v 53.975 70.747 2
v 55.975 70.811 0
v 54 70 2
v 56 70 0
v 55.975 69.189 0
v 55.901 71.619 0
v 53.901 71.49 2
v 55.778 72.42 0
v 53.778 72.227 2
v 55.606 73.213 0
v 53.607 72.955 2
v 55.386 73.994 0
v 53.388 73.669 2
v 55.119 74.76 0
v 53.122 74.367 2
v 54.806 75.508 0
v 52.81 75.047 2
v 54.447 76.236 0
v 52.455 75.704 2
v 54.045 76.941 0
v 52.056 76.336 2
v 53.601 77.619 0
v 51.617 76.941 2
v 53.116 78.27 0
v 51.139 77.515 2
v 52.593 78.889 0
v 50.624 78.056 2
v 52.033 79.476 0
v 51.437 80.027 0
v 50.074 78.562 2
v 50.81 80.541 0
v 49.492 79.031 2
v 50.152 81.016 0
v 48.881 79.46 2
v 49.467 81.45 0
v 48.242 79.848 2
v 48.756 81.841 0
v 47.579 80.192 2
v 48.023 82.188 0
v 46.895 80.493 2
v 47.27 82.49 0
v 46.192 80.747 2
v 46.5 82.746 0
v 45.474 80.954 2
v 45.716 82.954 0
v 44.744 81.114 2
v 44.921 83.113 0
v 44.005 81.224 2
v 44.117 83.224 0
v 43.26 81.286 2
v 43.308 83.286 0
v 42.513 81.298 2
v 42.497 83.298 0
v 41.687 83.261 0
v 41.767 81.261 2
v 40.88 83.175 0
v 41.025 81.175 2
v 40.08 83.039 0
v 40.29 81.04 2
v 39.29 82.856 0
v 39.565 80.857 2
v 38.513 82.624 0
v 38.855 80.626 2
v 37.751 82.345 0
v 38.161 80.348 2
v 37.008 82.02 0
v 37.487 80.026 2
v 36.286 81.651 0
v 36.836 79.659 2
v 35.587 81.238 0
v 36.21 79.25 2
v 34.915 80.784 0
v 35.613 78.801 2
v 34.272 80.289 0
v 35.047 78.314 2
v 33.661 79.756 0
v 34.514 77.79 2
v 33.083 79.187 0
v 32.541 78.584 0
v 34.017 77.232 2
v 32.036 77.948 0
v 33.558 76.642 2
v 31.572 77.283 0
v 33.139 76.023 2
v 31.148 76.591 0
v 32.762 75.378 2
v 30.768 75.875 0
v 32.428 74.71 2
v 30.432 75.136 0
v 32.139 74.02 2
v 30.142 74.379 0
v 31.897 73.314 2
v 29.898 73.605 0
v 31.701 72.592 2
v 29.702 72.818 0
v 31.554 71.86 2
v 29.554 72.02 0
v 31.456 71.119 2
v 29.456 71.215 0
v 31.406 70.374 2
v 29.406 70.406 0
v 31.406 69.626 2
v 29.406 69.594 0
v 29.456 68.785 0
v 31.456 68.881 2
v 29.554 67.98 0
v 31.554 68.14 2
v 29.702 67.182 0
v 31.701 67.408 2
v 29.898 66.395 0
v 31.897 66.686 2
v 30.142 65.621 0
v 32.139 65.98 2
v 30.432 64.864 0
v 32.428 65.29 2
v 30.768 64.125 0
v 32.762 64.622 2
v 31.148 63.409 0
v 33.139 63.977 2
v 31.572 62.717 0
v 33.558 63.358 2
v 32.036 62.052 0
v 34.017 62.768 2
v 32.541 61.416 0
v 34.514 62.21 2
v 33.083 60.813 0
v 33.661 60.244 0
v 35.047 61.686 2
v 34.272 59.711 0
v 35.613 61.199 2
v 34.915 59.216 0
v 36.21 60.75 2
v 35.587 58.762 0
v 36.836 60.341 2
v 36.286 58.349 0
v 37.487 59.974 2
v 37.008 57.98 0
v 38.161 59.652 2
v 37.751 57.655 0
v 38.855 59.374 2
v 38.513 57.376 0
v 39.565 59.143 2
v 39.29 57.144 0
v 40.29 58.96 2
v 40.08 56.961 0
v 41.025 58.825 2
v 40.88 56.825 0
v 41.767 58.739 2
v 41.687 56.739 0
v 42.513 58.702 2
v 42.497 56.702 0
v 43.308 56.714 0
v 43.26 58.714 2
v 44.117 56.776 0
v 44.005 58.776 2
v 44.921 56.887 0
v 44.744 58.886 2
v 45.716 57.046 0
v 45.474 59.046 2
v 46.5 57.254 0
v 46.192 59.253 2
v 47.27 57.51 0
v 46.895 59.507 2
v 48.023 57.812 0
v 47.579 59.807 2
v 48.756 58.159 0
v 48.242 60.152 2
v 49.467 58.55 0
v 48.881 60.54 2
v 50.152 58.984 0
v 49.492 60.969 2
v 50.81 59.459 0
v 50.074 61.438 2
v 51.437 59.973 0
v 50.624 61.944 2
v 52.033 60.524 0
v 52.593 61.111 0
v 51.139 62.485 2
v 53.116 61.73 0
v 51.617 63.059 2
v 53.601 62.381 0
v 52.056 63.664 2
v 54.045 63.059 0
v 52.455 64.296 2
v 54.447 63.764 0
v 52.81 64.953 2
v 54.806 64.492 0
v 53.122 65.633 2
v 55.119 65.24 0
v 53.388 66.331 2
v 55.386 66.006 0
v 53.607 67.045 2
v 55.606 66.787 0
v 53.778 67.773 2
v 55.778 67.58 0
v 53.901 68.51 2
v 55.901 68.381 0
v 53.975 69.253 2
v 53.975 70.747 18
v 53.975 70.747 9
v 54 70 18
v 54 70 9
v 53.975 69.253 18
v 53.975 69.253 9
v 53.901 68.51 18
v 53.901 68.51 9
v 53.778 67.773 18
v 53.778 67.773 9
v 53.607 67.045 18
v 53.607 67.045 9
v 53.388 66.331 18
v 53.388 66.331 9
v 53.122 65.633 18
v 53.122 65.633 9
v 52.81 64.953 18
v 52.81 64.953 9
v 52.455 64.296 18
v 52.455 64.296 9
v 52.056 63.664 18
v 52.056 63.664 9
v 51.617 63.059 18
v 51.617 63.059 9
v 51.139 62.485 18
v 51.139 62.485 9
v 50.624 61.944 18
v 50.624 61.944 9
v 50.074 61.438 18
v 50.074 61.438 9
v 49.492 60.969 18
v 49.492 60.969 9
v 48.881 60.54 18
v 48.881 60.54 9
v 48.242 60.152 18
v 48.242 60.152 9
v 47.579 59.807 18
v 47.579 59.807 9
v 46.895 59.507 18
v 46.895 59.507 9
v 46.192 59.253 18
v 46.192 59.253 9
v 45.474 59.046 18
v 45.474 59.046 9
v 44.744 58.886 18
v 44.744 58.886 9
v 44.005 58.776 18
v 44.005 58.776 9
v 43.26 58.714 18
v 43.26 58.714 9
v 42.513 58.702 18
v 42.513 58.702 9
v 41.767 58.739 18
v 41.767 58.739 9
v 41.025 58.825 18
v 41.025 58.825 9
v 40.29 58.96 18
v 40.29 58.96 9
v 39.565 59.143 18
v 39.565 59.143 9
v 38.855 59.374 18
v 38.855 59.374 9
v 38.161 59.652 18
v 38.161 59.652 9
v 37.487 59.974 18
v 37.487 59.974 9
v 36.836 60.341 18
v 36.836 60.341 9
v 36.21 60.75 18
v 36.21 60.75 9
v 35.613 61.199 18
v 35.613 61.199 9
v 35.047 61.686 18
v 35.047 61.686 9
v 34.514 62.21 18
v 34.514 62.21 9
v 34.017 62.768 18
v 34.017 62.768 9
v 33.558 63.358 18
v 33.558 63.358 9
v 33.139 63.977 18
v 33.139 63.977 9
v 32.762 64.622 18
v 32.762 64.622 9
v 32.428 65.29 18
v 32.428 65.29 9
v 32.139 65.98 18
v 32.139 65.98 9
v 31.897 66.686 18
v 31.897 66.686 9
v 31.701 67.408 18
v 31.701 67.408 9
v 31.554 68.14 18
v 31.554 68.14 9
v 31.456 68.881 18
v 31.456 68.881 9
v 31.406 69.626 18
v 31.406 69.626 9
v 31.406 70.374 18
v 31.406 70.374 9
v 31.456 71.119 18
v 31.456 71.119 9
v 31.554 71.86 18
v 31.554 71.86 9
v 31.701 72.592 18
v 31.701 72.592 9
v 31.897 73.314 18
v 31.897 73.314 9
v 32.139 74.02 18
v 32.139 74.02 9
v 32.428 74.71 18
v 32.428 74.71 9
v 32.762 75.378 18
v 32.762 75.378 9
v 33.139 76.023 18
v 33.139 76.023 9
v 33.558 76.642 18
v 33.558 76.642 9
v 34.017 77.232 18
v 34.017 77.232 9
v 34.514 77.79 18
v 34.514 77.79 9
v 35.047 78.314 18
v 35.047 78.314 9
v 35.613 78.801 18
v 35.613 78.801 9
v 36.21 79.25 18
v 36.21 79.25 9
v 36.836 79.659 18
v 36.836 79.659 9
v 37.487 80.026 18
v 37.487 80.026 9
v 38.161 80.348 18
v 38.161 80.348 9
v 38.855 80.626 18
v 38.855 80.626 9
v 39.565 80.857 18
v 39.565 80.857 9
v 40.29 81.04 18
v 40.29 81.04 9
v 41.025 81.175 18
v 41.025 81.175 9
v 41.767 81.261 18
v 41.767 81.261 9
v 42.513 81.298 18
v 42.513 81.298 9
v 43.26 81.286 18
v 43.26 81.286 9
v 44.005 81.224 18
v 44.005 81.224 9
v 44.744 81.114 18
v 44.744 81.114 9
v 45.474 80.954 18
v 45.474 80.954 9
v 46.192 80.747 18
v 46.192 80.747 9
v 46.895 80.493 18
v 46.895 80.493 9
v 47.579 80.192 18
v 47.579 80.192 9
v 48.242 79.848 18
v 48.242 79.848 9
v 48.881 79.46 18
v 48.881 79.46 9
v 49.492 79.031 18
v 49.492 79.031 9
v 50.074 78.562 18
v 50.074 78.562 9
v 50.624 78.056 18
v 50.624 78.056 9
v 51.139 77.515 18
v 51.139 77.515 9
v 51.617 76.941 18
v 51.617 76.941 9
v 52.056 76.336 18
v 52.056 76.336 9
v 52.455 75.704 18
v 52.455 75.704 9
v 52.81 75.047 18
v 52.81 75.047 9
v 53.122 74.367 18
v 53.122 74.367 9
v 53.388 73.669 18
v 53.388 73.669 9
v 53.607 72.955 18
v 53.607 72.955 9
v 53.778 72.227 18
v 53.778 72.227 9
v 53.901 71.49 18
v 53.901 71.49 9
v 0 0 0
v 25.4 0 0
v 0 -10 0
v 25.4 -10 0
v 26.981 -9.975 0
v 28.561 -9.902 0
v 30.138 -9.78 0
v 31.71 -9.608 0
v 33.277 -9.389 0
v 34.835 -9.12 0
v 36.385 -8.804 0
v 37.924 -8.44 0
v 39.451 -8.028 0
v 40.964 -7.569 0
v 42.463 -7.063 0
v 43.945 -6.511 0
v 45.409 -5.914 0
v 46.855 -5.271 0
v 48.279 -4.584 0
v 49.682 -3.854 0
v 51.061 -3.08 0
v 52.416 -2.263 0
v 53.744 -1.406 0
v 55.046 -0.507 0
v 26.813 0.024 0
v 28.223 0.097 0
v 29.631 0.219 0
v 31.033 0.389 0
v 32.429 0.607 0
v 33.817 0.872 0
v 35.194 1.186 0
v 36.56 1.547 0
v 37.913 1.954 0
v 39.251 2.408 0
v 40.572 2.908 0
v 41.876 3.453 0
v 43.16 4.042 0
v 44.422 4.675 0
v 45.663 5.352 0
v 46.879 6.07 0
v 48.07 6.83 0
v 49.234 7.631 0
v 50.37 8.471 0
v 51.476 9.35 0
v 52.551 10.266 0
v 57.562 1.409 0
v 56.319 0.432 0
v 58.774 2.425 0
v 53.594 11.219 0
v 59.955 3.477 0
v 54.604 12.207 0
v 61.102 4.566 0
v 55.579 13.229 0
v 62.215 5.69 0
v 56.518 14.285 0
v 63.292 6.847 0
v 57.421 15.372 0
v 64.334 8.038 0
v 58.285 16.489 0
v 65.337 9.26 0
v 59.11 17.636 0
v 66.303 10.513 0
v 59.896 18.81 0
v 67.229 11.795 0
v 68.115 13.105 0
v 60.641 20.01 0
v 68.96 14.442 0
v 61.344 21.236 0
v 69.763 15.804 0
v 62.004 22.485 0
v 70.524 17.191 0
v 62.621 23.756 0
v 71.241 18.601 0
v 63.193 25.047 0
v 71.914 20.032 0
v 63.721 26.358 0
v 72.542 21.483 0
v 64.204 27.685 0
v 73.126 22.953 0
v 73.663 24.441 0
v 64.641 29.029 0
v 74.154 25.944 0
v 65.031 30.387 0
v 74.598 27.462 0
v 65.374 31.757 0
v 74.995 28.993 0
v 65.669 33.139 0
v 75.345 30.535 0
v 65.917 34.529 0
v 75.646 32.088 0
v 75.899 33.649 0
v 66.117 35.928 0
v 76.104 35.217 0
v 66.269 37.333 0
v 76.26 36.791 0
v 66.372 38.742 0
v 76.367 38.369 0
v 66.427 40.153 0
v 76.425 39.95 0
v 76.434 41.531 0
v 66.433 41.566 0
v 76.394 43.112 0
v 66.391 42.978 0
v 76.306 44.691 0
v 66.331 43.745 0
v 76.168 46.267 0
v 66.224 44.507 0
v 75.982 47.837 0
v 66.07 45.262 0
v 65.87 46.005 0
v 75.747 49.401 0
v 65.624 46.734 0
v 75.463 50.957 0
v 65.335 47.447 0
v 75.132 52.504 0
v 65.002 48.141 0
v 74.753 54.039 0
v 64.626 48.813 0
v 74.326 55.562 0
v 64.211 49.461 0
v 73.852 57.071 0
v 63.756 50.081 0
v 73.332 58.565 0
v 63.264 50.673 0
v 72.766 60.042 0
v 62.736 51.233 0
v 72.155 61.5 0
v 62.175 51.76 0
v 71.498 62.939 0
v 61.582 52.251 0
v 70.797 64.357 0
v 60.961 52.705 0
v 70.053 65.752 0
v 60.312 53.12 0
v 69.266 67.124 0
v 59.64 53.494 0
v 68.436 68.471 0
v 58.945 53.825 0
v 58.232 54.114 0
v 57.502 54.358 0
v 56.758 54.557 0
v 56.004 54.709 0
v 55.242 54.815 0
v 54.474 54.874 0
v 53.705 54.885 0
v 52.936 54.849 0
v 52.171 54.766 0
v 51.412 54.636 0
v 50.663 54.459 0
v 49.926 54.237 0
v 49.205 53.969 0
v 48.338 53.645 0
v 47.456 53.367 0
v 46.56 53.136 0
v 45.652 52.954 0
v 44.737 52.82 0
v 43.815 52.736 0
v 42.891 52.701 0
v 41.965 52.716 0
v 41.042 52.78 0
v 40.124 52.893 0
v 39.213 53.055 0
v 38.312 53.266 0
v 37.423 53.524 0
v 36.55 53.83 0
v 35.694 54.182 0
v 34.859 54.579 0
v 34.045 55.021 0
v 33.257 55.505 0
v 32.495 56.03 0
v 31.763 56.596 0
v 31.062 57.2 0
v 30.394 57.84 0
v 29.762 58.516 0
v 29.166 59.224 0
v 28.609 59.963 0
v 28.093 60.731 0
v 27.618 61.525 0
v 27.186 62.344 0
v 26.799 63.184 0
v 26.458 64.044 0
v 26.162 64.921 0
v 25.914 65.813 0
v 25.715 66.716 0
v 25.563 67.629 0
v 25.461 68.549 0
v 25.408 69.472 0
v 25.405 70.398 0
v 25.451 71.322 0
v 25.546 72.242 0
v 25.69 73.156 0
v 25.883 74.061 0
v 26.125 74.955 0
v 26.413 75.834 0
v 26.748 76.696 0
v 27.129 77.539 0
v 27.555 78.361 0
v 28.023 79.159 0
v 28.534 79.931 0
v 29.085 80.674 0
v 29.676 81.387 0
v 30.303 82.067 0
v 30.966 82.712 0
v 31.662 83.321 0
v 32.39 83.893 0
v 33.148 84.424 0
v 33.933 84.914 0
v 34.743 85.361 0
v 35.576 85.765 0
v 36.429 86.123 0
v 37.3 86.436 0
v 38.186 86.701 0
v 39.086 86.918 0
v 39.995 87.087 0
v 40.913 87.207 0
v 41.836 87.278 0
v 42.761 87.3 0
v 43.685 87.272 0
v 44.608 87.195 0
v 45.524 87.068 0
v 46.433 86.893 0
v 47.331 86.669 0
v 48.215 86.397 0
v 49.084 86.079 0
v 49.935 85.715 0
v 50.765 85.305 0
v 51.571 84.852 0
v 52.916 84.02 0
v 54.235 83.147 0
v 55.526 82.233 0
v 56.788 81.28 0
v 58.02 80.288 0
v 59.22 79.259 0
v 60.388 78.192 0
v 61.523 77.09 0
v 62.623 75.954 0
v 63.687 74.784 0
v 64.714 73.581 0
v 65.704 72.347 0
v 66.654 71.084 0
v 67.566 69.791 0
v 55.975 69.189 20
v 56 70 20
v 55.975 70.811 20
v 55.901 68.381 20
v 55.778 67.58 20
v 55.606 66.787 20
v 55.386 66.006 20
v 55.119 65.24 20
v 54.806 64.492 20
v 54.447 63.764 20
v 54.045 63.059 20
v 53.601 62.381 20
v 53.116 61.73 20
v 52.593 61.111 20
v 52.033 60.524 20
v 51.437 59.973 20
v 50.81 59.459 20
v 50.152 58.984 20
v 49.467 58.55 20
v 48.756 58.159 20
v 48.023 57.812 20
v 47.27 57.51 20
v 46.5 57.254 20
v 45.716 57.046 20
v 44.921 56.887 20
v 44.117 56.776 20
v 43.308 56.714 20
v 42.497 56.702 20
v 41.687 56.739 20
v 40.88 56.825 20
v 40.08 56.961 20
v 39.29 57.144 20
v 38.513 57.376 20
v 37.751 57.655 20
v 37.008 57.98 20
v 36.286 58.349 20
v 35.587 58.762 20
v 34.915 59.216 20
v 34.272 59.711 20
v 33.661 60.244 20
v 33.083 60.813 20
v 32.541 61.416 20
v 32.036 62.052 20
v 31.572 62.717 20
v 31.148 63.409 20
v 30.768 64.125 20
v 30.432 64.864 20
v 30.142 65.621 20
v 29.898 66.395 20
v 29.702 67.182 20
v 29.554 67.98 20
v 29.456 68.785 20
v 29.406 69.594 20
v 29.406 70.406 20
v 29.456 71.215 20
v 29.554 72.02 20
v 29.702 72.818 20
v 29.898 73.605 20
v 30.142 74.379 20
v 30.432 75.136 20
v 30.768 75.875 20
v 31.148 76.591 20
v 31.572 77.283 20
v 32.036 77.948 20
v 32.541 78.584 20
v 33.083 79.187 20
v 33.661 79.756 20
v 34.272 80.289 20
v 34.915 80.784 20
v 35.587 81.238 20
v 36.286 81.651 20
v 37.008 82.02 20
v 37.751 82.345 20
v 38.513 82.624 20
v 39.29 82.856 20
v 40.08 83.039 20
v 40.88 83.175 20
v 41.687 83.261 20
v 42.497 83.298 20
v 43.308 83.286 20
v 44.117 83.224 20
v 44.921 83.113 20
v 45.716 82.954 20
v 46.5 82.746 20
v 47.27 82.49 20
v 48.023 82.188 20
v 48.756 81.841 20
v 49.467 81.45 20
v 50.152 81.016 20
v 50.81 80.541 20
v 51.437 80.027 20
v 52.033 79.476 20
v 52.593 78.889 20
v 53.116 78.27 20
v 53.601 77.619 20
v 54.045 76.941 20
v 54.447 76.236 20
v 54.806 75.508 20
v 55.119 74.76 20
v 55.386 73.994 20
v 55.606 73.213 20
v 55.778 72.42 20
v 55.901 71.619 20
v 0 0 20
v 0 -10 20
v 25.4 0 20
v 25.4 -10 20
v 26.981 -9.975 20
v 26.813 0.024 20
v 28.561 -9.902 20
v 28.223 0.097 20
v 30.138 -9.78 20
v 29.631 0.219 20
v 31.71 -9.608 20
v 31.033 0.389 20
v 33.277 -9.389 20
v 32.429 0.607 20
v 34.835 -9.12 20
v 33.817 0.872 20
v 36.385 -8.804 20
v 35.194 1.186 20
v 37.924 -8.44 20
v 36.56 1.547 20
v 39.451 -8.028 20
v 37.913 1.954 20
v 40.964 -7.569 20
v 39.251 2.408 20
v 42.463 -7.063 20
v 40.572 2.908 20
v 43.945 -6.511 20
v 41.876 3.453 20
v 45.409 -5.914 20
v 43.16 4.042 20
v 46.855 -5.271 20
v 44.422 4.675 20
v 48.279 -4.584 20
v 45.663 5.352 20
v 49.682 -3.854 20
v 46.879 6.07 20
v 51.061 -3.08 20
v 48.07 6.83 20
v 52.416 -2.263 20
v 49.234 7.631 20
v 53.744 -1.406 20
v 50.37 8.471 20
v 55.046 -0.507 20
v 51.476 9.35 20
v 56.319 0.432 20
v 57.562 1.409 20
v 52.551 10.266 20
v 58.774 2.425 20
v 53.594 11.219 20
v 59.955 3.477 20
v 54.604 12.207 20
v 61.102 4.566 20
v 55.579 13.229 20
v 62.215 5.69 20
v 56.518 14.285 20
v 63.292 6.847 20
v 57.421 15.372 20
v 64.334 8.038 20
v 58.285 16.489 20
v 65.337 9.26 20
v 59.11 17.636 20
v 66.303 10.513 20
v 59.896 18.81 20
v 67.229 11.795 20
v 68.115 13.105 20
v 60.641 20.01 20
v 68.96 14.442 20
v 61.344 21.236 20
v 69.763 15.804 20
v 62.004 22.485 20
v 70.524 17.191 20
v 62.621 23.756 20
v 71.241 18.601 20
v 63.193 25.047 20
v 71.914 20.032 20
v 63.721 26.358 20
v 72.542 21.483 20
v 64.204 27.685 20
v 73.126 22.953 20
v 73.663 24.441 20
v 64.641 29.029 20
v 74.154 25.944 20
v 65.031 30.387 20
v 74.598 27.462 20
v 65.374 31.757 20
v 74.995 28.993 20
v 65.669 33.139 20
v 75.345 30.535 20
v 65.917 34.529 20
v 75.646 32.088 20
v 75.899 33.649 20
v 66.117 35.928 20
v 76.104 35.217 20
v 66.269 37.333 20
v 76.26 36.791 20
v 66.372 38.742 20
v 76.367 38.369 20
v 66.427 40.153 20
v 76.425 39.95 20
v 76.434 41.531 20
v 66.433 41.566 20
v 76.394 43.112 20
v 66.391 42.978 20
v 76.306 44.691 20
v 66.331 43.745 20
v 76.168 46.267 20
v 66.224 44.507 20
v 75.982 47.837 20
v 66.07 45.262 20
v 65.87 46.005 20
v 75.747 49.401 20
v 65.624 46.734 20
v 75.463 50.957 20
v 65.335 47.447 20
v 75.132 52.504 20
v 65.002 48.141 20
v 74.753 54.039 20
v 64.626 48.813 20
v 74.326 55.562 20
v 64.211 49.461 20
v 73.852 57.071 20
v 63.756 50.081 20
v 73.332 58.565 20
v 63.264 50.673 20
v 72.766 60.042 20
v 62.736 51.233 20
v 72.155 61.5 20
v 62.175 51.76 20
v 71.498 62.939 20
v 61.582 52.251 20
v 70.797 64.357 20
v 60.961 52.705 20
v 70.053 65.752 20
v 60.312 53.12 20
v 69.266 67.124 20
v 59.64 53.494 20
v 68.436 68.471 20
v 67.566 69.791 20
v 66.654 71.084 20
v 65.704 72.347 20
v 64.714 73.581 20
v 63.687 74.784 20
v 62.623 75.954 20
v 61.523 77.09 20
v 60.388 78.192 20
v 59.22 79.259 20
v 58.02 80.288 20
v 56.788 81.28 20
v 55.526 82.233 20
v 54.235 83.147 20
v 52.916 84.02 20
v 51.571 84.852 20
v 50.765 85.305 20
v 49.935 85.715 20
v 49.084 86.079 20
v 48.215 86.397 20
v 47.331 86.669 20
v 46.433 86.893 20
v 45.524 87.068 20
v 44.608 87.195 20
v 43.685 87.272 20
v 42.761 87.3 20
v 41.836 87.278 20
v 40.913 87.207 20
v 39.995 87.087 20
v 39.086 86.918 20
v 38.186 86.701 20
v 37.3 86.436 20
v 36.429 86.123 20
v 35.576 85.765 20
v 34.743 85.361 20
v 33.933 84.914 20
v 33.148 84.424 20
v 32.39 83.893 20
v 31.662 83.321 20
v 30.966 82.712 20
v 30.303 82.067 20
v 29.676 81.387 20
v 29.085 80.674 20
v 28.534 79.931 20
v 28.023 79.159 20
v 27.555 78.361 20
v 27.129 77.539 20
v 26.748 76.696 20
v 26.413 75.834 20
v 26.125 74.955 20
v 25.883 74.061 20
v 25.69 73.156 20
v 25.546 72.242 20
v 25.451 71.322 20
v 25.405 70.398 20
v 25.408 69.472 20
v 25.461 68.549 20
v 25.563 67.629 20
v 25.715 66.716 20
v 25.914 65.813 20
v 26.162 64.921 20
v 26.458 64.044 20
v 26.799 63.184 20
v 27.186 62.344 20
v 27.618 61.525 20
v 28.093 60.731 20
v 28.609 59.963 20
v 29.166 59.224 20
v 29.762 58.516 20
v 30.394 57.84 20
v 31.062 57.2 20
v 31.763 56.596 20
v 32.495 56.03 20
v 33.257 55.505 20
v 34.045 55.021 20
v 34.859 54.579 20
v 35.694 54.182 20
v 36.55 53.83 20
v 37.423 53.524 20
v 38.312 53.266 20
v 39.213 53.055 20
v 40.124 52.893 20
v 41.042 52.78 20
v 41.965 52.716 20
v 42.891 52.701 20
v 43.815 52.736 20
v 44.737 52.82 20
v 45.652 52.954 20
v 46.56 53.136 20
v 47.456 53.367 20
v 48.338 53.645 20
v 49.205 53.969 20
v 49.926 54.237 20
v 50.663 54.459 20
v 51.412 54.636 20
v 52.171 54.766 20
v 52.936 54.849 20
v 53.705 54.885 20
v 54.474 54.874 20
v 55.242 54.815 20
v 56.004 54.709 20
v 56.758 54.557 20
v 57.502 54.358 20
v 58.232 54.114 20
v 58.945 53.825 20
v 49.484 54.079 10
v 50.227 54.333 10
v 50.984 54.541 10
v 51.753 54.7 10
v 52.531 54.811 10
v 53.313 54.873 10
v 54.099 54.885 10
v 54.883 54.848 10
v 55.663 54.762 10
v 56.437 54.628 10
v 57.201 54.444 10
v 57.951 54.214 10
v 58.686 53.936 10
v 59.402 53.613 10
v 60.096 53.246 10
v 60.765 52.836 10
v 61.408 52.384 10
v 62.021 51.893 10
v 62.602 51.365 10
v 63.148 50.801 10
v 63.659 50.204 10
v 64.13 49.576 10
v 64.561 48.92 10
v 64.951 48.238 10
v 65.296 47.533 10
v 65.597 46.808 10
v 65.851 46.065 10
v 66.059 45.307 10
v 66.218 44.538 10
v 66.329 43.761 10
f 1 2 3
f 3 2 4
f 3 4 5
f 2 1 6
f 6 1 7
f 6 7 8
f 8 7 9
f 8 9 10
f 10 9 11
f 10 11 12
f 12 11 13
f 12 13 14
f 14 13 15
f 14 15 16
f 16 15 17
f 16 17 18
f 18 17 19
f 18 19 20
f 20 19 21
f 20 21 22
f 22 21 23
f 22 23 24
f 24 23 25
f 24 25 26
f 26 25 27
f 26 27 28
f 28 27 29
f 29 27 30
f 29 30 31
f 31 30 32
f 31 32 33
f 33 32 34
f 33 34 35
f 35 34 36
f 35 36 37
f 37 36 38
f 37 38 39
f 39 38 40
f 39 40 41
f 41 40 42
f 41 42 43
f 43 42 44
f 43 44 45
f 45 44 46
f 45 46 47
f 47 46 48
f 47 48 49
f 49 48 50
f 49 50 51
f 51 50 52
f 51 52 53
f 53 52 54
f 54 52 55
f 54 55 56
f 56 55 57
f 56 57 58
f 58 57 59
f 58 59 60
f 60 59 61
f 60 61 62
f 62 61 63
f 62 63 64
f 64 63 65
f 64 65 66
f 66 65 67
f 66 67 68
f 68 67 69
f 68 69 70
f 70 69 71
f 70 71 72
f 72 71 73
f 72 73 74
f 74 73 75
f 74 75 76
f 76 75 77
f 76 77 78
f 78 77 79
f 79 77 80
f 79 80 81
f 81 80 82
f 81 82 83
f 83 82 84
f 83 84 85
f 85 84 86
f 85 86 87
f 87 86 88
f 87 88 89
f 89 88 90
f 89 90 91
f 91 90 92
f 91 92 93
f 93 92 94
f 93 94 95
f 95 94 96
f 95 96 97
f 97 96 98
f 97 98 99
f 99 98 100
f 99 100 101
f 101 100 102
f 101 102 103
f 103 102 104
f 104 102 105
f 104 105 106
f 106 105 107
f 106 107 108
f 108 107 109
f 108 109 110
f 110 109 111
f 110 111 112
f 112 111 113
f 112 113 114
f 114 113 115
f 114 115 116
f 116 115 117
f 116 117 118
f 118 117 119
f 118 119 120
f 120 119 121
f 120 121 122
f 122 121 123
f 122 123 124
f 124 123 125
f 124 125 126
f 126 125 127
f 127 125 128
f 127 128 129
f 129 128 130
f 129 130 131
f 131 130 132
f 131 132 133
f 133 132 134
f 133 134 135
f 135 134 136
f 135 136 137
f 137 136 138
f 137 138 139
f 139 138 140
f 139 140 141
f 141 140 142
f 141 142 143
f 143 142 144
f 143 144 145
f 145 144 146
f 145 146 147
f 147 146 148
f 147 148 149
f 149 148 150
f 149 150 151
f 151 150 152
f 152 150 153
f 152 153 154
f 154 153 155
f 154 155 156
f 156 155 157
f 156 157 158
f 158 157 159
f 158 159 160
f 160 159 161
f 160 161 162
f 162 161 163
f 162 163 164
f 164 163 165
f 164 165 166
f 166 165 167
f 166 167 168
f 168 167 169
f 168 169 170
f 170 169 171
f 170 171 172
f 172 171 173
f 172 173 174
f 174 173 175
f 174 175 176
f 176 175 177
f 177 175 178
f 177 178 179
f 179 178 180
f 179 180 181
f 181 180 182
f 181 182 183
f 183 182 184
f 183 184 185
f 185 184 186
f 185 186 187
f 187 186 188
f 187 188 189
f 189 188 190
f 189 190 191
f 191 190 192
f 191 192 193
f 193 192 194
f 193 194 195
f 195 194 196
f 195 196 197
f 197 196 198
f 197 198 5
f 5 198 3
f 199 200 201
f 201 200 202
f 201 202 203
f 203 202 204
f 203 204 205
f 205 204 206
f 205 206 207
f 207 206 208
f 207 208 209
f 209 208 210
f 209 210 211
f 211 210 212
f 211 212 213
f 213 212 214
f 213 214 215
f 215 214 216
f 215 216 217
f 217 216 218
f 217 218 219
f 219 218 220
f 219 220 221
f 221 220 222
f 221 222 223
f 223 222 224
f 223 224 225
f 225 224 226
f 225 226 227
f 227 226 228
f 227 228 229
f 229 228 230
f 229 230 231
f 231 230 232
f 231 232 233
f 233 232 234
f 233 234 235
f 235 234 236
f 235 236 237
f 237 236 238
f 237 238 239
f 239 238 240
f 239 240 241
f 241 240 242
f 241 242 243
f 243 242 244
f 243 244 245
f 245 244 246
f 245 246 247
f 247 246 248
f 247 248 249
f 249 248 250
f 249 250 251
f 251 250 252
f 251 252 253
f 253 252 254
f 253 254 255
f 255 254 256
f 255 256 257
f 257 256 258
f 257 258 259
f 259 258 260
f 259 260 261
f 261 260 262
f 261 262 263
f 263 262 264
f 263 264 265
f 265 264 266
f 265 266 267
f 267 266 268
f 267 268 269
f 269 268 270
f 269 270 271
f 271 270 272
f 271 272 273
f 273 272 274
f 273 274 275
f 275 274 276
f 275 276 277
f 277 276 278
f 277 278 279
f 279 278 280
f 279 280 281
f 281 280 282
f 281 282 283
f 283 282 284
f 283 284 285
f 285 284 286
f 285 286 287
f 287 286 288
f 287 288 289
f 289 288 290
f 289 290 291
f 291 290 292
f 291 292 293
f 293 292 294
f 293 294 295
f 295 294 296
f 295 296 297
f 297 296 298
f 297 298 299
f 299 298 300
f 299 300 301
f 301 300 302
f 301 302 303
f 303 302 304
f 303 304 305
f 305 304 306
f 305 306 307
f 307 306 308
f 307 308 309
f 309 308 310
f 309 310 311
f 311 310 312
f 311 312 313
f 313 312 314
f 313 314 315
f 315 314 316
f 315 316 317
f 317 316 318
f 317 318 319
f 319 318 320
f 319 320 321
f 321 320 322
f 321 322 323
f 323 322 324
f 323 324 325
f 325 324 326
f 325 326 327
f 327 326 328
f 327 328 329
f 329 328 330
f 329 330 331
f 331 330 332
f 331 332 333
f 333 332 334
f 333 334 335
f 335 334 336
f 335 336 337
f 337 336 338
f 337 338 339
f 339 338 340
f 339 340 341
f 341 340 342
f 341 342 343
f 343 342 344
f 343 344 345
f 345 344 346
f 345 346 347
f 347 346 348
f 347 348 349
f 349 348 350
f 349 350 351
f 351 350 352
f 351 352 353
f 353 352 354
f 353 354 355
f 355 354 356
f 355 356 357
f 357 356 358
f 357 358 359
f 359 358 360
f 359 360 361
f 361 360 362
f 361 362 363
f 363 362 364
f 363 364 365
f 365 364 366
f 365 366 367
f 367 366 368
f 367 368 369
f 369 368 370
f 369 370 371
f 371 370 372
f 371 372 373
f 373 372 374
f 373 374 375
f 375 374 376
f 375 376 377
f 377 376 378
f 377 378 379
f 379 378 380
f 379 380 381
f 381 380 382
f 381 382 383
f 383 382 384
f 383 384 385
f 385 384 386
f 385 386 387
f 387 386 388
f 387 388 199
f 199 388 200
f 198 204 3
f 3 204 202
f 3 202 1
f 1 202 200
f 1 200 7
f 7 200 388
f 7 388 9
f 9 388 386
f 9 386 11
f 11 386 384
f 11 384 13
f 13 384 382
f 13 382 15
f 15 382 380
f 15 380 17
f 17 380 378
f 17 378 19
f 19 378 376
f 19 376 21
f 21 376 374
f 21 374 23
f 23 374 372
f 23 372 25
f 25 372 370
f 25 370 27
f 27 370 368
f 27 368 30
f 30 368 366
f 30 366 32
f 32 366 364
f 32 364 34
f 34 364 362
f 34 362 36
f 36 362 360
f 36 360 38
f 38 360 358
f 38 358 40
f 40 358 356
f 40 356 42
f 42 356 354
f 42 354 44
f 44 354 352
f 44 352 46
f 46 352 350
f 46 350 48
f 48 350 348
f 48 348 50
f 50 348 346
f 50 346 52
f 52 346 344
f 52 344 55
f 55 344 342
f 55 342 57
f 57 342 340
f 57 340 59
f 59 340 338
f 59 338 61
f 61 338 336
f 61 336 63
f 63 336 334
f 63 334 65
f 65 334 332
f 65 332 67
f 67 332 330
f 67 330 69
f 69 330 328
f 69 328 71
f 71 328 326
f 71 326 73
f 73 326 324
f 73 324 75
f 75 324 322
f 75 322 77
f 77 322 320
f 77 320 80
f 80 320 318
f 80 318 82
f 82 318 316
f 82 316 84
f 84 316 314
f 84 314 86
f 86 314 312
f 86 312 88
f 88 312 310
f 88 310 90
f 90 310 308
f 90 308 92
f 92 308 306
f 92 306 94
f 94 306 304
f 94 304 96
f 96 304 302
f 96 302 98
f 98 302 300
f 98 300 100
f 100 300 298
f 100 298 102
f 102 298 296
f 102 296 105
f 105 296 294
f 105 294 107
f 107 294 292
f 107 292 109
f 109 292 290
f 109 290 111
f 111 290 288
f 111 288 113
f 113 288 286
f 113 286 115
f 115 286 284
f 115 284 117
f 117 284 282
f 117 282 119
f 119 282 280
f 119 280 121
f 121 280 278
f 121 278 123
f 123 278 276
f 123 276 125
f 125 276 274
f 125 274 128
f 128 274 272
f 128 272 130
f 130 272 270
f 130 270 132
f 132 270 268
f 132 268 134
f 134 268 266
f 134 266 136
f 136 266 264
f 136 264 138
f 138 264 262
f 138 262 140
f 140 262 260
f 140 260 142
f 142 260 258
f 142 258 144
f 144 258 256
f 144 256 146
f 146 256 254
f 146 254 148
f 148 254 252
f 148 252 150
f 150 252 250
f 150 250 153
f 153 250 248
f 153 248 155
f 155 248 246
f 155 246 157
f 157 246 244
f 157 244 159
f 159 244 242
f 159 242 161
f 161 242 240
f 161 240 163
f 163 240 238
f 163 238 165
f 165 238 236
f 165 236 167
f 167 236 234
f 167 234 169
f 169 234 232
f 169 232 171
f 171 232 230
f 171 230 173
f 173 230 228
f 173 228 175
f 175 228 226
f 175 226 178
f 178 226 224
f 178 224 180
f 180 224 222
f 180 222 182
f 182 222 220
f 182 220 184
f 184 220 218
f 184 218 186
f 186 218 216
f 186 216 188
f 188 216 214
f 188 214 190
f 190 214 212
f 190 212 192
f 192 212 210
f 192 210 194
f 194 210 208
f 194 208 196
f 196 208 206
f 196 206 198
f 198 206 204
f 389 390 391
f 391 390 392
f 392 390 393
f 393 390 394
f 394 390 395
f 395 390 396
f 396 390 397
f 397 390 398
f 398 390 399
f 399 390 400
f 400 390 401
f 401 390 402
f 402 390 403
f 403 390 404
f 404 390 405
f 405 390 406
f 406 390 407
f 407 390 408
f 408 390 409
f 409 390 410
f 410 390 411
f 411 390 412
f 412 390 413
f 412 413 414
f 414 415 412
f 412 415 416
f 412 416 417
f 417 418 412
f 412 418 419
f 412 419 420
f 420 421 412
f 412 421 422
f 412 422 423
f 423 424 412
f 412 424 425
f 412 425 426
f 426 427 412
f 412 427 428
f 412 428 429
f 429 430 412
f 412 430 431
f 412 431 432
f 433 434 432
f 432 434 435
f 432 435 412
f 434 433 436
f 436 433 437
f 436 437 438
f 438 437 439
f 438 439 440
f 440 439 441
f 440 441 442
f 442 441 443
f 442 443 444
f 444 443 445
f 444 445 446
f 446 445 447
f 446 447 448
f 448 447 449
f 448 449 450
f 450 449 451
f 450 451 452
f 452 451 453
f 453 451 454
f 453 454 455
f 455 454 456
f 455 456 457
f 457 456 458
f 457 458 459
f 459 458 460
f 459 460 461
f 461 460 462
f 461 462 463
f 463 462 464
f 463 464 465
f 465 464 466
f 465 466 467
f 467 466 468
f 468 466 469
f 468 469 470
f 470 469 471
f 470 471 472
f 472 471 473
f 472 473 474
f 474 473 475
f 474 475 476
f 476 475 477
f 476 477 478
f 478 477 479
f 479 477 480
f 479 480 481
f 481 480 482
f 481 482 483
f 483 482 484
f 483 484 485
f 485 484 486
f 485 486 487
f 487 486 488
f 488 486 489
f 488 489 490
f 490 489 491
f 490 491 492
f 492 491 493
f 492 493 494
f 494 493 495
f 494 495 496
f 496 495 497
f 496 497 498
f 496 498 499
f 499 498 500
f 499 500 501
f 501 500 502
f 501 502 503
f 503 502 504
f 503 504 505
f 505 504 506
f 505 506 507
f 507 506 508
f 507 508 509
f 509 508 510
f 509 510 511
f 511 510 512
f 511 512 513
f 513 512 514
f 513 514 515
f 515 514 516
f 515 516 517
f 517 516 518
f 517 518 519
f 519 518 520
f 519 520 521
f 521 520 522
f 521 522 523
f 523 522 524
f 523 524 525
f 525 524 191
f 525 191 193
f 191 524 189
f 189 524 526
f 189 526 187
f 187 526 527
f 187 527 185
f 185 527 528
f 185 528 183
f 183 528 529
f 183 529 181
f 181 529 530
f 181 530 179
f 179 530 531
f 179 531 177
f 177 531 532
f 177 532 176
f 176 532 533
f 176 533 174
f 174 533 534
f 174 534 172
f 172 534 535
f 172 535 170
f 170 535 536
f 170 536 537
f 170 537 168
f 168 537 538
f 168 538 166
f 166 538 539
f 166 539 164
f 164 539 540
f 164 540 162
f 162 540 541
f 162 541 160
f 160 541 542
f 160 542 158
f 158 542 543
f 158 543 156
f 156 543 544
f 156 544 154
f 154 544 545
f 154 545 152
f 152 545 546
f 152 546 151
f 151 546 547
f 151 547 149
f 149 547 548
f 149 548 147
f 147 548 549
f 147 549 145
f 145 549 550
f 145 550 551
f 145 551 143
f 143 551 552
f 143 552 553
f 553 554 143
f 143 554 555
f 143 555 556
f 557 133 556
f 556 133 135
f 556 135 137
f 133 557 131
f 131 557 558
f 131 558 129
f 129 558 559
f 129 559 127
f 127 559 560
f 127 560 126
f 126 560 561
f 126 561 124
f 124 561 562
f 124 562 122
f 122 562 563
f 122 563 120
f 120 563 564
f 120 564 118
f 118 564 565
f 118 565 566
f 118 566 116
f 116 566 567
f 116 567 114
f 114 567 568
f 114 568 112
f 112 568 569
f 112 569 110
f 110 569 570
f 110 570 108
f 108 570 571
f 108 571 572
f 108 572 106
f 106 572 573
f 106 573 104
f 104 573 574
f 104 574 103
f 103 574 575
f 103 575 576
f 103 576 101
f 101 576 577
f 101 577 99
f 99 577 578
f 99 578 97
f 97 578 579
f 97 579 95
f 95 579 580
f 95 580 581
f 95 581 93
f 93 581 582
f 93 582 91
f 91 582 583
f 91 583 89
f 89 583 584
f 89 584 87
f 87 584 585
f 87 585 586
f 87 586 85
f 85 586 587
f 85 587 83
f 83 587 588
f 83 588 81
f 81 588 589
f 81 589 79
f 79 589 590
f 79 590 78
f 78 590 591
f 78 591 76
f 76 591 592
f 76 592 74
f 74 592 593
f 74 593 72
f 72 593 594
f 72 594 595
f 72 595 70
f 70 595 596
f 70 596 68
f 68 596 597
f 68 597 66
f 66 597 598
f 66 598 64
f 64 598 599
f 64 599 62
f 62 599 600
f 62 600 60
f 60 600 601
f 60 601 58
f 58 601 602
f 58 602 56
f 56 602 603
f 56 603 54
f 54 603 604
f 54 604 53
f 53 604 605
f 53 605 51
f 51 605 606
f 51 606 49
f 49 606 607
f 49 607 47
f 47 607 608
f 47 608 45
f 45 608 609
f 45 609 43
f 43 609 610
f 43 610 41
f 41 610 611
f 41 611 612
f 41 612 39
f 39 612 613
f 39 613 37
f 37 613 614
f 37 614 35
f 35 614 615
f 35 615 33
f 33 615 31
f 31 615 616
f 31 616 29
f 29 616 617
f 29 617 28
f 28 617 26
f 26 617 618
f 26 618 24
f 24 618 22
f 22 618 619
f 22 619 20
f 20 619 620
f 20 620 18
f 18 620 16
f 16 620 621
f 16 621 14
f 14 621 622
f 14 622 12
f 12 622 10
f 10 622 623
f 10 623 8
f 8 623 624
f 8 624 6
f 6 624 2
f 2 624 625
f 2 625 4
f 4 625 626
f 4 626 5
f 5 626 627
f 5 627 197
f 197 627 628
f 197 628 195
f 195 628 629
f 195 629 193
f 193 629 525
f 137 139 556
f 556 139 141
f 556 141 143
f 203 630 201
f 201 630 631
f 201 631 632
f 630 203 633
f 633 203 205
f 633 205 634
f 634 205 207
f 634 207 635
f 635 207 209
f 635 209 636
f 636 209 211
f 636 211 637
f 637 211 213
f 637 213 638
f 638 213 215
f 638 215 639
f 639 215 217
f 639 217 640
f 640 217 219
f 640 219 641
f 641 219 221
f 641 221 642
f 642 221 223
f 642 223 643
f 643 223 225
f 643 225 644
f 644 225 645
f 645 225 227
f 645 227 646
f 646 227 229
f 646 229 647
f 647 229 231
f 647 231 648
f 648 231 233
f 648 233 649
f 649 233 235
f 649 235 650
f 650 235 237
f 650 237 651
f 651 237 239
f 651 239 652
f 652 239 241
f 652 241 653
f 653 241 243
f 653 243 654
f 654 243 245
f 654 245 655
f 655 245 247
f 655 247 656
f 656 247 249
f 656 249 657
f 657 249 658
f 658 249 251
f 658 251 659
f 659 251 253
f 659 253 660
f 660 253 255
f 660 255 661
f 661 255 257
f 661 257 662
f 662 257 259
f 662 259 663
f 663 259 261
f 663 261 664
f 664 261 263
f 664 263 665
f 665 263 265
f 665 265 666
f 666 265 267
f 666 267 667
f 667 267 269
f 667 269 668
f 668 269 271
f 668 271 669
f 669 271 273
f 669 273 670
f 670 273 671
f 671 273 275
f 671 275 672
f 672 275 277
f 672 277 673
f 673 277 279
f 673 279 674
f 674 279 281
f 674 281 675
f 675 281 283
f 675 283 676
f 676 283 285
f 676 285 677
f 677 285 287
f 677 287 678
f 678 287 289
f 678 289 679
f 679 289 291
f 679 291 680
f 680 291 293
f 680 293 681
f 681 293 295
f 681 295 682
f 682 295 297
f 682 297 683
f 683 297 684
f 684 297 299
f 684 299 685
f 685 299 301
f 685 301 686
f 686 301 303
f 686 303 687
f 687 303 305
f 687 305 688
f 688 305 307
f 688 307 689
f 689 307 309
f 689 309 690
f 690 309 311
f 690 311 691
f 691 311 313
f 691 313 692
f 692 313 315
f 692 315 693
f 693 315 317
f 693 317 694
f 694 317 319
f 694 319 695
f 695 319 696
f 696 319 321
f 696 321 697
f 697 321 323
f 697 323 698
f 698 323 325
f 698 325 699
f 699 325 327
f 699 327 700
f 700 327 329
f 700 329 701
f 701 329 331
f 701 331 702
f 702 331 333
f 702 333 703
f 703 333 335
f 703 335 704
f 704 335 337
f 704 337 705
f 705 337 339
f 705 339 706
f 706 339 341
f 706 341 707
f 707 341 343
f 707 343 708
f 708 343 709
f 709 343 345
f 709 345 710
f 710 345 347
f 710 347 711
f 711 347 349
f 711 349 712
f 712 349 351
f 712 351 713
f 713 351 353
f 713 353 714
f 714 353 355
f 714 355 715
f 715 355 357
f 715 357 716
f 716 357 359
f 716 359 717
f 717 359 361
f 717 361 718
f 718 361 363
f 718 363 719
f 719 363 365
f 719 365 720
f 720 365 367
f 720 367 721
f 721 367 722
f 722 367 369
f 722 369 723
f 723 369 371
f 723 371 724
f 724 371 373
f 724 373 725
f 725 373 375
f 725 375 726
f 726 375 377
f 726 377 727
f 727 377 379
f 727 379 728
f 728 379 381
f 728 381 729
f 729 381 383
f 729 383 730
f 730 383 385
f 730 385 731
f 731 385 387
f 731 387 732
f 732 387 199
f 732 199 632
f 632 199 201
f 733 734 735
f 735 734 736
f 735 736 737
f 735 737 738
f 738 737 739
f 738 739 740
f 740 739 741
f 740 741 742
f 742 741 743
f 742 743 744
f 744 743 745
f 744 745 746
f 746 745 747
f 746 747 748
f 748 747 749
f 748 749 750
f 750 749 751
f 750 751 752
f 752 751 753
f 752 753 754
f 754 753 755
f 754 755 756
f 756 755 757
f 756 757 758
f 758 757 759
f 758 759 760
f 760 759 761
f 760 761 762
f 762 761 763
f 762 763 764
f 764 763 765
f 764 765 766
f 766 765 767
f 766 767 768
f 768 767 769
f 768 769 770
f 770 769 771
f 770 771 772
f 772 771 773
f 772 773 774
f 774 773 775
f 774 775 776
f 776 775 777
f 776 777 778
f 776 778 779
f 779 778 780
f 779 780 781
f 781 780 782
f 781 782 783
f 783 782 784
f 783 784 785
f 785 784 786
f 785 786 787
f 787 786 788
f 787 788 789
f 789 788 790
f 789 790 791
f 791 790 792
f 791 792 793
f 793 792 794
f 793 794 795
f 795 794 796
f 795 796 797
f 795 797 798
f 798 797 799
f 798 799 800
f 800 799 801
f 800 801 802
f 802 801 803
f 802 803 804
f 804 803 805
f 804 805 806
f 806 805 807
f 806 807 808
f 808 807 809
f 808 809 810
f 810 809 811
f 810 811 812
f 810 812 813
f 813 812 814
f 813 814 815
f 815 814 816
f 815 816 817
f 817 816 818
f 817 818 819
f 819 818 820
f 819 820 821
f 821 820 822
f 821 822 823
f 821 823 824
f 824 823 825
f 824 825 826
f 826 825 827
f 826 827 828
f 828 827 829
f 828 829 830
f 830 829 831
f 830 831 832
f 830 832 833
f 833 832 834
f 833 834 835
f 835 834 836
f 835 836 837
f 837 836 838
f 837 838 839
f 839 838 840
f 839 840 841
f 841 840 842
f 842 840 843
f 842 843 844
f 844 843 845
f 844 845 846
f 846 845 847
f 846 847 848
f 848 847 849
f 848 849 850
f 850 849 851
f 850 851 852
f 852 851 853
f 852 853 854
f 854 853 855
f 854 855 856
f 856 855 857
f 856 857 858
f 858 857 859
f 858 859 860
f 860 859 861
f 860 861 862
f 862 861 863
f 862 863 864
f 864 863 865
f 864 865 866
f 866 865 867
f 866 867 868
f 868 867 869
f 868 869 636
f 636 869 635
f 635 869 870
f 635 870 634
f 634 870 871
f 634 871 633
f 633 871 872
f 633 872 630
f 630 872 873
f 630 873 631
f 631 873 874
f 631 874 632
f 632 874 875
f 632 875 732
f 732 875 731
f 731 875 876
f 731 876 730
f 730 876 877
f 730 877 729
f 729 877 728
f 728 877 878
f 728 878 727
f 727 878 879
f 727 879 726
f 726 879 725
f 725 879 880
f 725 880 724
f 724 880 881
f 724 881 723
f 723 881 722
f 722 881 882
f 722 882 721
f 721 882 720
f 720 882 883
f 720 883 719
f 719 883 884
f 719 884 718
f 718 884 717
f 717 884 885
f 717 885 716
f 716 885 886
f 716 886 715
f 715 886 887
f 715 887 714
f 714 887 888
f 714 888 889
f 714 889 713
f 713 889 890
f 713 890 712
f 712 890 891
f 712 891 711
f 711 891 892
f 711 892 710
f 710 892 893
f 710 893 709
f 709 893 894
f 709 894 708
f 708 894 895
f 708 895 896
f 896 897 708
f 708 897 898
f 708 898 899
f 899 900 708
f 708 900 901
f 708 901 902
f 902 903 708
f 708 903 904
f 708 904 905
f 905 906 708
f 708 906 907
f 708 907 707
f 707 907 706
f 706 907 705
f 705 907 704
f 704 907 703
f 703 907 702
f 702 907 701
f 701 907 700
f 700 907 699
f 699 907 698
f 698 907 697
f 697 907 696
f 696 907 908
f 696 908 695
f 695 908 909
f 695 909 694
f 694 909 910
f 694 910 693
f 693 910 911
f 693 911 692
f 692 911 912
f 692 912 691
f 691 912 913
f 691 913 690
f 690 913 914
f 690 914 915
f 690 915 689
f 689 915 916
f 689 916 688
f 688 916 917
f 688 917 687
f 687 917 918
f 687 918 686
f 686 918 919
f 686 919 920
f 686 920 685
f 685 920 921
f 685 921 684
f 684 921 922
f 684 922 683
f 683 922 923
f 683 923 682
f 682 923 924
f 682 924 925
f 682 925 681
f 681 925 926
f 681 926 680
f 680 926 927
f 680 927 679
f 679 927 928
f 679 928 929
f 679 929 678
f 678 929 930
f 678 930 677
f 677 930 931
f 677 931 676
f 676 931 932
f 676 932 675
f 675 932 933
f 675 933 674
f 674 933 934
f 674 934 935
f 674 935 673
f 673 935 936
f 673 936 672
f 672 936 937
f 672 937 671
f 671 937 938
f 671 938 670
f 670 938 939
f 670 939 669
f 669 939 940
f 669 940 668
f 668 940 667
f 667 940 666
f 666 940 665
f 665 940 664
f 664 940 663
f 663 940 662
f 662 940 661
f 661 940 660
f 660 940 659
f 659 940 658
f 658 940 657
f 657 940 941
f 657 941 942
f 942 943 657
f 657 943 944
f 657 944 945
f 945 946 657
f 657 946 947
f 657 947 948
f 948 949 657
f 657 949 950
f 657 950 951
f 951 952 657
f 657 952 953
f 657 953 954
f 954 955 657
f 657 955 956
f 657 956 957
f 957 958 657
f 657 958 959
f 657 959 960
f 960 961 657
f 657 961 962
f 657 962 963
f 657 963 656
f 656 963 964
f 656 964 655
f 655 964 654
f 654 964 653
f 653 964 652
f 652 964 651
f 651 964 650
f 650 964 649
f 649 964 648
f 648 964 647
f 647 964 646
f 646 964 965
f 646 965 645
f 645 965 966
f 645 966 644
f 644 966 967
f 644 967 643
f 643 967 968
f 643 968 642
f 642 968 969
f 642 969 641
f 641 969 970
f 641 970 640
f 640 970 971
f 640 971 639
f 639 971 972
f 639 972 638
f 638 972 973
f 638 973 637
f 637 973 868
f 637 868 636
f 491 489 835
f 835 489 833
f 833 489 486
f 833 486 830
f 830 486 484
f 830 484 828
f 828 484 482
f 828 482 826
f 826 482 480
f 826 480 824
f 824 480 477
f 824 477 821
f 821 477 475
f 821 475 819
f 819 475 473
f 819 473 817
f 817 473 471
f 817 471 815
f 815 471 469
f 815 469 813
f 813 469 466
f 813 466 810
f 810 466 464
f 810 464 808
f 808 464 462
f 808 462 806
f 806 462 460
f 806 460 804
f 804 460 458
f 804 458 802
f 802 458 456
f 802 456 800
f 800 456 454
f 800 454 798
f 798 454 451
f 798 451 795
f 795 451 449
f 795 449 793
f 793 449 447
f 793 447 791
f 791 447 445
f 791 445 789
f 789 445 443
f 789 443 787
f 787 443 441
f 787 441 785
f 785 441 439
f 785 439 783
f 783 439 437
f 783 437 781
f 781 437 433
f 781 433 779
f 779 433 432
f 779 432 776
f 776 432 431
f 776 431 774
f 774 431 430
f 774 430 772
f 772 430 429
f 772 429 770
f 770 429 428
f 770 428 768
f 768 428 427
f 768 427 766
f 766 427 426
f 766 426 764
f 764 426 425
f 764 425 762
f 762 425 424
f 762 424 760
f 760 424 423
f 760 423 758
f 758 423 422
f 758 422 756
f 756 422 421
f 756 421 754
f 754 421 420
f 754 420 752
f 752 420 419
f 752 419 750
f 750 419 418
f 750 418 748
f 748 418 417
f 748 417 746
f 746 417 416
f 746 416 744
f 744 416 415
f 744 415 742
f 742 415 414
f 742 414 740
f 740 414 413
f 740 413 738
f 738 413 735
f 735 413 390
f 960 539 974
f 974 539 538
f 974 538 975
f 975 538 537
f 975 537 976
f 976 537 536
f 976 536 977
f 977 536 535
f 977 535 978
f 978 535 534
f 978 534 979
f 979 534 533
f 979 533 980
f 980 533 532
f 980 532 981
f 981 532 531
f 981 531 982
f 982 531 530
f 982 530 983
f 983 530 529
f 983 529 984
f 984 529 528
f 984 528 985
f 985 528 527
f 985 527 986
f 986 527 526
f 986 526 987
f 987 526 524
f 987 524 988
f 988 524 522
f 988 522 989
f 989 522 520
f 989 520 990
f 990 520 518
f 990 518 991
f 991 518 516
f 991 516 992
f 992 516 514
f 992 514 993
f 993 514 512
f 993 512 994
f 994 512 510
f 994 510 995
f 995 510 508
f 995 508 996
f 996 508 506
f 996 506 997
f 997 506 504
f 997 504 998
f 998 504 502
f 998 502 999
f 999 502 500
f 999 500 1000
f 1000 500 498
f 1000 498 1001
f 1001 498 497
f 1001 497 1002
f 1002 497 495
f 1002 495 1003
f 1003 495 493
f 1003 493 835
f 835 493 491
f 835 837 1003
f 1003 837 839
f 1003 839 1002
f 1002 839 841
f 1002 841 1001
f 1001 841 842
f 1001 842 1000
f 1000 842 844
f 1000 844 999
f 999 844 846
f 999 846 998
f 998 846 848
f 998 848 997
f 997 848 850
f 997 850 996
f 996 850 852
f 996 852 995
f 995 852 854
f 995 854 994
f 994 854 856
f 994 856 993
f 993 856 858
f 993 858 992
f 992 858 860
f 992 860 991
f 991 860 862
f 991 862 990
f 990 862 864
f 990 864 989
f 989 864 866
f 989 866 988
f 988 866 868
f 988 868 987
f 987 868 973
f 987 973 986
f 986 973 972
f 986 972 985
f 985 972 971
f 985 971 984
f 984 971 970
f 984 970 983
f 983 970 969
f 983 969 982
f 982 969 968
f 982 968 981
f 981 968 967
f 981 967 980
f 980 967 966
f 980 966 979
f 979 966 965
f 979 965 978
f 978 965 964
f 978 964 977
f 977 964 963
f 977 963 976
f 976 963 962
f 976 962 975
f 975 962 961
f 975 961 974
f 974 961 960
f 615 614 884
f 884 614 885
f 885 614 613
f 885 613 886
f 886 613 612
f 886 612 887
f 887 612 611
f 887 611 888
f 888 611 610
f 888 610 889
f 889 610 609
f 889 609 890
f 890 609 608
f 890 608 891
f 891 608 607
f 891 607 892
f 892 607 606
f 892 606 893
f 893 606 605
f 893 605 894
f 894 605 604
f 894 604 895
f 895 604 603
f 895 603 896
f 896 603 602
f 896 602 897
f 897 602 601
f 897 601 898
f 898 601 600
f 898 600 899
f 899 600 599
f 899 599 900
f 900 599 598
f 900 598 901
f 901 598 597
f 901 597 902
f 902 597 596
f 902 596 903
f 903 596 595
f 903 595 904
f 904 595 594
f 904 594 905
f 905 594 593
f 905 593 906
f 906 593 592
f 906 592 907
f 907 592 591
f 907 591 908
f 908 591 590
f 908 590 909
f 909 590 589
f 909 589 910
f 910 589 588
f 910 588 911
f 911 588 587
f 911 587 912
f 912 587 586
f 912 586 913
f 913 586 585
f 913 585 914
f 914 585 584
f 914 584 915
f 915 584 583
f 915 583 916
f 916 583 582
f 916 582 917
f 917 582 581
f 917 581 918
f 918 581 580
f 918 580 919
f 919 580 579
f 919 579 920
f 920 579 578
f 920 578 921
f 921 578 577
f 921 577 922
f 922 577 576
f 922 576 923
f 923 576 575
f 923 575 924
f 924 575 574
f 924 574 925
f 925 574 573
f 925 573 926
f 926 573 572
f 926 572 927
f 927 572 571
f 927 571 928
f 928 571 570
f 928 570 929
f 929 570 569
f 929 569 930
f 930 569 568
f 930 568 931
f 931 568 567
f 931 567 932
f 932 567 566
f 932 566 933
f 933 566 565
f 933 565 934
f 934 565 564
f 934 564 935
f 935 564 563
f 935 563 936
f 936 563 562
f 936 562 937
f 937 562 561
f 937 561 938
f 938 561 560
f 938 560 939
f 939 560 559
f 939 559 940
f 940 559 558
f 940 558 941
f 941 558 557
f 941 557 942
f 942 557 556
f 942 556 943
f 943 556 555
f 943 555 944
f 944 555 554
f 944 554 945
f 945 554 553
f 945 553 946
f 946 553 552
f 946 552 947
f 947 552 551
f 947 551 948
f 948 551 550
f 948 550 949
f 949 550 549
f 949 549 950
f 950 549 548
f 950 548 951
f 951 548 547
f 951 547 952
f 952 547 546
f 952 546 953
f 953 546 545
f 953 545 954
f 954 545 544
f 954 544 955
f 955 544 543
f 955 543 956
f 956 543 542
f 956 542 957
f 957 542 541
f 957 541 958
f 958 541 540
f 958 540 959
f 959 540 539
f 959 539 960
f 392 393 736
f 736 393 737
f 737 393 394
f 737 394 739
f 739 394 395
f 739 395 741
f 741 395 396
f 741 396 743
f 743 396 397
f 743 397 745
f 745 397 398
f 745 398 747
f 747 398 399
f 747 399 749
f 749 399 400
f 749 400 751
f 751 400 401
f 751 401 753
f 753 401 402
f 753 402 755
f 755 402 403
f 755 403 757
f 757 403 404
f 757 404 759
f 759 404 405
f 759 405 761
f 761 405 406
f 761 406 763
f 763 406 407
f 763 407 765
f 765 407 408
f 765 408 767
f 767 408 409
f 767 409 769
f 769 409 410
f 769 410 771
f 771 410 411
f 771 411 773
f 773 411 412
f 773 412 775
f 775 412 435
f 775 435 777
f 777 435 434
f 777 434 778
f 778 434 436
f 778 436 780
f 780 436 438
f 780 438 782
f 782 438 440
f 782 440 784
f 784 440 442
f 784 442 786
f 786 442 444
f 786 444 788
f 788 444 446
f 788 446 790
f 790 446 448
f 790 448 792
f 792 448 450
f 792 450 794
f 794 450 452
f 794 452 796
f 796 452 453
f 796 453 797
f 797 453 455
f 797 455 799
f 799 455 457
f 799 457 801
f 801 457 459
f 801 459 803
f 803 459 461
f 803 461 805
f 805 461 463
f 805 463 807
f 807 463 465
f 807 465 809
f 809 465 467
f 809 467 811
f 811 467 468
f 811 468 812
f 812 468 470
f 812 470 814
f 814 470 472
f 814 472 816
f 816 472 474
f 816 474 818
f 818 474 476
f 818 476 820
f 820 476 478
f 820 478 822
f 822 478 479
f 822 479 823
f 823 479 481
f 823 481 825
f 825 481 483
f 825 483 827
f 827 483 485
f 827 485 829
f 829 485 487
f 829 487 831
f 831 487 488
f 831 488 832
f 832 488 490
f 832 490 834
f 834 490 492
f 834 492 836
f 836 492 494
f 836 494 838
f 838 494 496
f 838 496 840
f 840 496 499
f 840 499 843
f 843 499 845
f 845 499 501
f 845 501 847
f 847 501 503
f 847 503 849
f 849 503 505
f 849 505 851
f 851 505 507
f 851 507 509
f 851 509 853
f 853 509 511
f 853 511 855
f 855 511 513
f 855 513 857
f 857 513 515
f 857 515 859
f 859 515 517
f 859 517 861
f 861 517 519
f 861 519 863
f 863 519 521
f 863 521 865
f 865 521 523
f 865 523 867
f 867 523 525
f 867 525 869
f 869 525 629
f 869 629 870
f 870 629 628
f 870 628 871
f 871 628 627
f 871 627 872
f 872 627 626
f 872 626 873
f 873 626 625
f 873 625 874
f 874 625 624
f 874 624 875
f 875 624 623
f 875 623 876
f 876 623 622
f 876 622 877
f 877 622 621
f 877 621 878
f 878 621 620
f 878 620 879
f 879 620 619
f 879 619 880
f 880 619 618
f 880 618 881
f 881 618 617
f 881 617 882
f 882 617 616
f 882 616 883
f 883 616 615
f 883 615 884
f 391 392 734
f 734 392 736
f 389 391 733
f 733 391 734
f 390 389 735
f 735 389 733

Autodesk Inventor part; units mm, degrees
ref_plane "YZ Plane" through (0, 0, 0) normal (1, 0, 0) x (0, 1, 0)
ref_plane "XZ Plane" through (0, 0, 0) normal (0, 1, 0) x (-1, 0, 0)
ref_plane "XY Plane" through (0, 0, 0) normal (0, 0, 1) x (1, 0, 0)
sketch "Sketch1" plane through (0, 0, 0) normal (0, 0, 1) x (1, 0, 0)
  line L0 (0, -10) -> (25.4, -10)
  line L1 (25.4, 0) -> (0, 0)
  line L2 (0, 0) -> (0, -10)
  circle A0 centre (42.7, 70) radius 11.3
  arc A1 (51.5714, 84.8522) -> (49.2048, 53.9695) centre (42.7, 70) ccw
  arc A2 (25.4, -10) -> (51.5714, 84.8522) centre (25.4, 41.0367) ccw
  arc A3 (66.3907, 42.9781) -> (49.2048, 53.9695) centre (53.9047, 42.3867) ccw
  arc A4 (25.4, 0) -> (66.3907, 42.9781) centre (25.4, 41.0367) ccw
  point P0 (0, 0)
  point P1 (12.7, -10)
  point P2 (12.7, 0)
extrude "Extrusion1" add sketch "Sketch1" along normal blind 20
chamfer "Chamfer2" distance 2 angle 45 2 edges at (31.4, 70, 20) (31.4, 70, 0)
properties part number "tablet_arm_joint"
